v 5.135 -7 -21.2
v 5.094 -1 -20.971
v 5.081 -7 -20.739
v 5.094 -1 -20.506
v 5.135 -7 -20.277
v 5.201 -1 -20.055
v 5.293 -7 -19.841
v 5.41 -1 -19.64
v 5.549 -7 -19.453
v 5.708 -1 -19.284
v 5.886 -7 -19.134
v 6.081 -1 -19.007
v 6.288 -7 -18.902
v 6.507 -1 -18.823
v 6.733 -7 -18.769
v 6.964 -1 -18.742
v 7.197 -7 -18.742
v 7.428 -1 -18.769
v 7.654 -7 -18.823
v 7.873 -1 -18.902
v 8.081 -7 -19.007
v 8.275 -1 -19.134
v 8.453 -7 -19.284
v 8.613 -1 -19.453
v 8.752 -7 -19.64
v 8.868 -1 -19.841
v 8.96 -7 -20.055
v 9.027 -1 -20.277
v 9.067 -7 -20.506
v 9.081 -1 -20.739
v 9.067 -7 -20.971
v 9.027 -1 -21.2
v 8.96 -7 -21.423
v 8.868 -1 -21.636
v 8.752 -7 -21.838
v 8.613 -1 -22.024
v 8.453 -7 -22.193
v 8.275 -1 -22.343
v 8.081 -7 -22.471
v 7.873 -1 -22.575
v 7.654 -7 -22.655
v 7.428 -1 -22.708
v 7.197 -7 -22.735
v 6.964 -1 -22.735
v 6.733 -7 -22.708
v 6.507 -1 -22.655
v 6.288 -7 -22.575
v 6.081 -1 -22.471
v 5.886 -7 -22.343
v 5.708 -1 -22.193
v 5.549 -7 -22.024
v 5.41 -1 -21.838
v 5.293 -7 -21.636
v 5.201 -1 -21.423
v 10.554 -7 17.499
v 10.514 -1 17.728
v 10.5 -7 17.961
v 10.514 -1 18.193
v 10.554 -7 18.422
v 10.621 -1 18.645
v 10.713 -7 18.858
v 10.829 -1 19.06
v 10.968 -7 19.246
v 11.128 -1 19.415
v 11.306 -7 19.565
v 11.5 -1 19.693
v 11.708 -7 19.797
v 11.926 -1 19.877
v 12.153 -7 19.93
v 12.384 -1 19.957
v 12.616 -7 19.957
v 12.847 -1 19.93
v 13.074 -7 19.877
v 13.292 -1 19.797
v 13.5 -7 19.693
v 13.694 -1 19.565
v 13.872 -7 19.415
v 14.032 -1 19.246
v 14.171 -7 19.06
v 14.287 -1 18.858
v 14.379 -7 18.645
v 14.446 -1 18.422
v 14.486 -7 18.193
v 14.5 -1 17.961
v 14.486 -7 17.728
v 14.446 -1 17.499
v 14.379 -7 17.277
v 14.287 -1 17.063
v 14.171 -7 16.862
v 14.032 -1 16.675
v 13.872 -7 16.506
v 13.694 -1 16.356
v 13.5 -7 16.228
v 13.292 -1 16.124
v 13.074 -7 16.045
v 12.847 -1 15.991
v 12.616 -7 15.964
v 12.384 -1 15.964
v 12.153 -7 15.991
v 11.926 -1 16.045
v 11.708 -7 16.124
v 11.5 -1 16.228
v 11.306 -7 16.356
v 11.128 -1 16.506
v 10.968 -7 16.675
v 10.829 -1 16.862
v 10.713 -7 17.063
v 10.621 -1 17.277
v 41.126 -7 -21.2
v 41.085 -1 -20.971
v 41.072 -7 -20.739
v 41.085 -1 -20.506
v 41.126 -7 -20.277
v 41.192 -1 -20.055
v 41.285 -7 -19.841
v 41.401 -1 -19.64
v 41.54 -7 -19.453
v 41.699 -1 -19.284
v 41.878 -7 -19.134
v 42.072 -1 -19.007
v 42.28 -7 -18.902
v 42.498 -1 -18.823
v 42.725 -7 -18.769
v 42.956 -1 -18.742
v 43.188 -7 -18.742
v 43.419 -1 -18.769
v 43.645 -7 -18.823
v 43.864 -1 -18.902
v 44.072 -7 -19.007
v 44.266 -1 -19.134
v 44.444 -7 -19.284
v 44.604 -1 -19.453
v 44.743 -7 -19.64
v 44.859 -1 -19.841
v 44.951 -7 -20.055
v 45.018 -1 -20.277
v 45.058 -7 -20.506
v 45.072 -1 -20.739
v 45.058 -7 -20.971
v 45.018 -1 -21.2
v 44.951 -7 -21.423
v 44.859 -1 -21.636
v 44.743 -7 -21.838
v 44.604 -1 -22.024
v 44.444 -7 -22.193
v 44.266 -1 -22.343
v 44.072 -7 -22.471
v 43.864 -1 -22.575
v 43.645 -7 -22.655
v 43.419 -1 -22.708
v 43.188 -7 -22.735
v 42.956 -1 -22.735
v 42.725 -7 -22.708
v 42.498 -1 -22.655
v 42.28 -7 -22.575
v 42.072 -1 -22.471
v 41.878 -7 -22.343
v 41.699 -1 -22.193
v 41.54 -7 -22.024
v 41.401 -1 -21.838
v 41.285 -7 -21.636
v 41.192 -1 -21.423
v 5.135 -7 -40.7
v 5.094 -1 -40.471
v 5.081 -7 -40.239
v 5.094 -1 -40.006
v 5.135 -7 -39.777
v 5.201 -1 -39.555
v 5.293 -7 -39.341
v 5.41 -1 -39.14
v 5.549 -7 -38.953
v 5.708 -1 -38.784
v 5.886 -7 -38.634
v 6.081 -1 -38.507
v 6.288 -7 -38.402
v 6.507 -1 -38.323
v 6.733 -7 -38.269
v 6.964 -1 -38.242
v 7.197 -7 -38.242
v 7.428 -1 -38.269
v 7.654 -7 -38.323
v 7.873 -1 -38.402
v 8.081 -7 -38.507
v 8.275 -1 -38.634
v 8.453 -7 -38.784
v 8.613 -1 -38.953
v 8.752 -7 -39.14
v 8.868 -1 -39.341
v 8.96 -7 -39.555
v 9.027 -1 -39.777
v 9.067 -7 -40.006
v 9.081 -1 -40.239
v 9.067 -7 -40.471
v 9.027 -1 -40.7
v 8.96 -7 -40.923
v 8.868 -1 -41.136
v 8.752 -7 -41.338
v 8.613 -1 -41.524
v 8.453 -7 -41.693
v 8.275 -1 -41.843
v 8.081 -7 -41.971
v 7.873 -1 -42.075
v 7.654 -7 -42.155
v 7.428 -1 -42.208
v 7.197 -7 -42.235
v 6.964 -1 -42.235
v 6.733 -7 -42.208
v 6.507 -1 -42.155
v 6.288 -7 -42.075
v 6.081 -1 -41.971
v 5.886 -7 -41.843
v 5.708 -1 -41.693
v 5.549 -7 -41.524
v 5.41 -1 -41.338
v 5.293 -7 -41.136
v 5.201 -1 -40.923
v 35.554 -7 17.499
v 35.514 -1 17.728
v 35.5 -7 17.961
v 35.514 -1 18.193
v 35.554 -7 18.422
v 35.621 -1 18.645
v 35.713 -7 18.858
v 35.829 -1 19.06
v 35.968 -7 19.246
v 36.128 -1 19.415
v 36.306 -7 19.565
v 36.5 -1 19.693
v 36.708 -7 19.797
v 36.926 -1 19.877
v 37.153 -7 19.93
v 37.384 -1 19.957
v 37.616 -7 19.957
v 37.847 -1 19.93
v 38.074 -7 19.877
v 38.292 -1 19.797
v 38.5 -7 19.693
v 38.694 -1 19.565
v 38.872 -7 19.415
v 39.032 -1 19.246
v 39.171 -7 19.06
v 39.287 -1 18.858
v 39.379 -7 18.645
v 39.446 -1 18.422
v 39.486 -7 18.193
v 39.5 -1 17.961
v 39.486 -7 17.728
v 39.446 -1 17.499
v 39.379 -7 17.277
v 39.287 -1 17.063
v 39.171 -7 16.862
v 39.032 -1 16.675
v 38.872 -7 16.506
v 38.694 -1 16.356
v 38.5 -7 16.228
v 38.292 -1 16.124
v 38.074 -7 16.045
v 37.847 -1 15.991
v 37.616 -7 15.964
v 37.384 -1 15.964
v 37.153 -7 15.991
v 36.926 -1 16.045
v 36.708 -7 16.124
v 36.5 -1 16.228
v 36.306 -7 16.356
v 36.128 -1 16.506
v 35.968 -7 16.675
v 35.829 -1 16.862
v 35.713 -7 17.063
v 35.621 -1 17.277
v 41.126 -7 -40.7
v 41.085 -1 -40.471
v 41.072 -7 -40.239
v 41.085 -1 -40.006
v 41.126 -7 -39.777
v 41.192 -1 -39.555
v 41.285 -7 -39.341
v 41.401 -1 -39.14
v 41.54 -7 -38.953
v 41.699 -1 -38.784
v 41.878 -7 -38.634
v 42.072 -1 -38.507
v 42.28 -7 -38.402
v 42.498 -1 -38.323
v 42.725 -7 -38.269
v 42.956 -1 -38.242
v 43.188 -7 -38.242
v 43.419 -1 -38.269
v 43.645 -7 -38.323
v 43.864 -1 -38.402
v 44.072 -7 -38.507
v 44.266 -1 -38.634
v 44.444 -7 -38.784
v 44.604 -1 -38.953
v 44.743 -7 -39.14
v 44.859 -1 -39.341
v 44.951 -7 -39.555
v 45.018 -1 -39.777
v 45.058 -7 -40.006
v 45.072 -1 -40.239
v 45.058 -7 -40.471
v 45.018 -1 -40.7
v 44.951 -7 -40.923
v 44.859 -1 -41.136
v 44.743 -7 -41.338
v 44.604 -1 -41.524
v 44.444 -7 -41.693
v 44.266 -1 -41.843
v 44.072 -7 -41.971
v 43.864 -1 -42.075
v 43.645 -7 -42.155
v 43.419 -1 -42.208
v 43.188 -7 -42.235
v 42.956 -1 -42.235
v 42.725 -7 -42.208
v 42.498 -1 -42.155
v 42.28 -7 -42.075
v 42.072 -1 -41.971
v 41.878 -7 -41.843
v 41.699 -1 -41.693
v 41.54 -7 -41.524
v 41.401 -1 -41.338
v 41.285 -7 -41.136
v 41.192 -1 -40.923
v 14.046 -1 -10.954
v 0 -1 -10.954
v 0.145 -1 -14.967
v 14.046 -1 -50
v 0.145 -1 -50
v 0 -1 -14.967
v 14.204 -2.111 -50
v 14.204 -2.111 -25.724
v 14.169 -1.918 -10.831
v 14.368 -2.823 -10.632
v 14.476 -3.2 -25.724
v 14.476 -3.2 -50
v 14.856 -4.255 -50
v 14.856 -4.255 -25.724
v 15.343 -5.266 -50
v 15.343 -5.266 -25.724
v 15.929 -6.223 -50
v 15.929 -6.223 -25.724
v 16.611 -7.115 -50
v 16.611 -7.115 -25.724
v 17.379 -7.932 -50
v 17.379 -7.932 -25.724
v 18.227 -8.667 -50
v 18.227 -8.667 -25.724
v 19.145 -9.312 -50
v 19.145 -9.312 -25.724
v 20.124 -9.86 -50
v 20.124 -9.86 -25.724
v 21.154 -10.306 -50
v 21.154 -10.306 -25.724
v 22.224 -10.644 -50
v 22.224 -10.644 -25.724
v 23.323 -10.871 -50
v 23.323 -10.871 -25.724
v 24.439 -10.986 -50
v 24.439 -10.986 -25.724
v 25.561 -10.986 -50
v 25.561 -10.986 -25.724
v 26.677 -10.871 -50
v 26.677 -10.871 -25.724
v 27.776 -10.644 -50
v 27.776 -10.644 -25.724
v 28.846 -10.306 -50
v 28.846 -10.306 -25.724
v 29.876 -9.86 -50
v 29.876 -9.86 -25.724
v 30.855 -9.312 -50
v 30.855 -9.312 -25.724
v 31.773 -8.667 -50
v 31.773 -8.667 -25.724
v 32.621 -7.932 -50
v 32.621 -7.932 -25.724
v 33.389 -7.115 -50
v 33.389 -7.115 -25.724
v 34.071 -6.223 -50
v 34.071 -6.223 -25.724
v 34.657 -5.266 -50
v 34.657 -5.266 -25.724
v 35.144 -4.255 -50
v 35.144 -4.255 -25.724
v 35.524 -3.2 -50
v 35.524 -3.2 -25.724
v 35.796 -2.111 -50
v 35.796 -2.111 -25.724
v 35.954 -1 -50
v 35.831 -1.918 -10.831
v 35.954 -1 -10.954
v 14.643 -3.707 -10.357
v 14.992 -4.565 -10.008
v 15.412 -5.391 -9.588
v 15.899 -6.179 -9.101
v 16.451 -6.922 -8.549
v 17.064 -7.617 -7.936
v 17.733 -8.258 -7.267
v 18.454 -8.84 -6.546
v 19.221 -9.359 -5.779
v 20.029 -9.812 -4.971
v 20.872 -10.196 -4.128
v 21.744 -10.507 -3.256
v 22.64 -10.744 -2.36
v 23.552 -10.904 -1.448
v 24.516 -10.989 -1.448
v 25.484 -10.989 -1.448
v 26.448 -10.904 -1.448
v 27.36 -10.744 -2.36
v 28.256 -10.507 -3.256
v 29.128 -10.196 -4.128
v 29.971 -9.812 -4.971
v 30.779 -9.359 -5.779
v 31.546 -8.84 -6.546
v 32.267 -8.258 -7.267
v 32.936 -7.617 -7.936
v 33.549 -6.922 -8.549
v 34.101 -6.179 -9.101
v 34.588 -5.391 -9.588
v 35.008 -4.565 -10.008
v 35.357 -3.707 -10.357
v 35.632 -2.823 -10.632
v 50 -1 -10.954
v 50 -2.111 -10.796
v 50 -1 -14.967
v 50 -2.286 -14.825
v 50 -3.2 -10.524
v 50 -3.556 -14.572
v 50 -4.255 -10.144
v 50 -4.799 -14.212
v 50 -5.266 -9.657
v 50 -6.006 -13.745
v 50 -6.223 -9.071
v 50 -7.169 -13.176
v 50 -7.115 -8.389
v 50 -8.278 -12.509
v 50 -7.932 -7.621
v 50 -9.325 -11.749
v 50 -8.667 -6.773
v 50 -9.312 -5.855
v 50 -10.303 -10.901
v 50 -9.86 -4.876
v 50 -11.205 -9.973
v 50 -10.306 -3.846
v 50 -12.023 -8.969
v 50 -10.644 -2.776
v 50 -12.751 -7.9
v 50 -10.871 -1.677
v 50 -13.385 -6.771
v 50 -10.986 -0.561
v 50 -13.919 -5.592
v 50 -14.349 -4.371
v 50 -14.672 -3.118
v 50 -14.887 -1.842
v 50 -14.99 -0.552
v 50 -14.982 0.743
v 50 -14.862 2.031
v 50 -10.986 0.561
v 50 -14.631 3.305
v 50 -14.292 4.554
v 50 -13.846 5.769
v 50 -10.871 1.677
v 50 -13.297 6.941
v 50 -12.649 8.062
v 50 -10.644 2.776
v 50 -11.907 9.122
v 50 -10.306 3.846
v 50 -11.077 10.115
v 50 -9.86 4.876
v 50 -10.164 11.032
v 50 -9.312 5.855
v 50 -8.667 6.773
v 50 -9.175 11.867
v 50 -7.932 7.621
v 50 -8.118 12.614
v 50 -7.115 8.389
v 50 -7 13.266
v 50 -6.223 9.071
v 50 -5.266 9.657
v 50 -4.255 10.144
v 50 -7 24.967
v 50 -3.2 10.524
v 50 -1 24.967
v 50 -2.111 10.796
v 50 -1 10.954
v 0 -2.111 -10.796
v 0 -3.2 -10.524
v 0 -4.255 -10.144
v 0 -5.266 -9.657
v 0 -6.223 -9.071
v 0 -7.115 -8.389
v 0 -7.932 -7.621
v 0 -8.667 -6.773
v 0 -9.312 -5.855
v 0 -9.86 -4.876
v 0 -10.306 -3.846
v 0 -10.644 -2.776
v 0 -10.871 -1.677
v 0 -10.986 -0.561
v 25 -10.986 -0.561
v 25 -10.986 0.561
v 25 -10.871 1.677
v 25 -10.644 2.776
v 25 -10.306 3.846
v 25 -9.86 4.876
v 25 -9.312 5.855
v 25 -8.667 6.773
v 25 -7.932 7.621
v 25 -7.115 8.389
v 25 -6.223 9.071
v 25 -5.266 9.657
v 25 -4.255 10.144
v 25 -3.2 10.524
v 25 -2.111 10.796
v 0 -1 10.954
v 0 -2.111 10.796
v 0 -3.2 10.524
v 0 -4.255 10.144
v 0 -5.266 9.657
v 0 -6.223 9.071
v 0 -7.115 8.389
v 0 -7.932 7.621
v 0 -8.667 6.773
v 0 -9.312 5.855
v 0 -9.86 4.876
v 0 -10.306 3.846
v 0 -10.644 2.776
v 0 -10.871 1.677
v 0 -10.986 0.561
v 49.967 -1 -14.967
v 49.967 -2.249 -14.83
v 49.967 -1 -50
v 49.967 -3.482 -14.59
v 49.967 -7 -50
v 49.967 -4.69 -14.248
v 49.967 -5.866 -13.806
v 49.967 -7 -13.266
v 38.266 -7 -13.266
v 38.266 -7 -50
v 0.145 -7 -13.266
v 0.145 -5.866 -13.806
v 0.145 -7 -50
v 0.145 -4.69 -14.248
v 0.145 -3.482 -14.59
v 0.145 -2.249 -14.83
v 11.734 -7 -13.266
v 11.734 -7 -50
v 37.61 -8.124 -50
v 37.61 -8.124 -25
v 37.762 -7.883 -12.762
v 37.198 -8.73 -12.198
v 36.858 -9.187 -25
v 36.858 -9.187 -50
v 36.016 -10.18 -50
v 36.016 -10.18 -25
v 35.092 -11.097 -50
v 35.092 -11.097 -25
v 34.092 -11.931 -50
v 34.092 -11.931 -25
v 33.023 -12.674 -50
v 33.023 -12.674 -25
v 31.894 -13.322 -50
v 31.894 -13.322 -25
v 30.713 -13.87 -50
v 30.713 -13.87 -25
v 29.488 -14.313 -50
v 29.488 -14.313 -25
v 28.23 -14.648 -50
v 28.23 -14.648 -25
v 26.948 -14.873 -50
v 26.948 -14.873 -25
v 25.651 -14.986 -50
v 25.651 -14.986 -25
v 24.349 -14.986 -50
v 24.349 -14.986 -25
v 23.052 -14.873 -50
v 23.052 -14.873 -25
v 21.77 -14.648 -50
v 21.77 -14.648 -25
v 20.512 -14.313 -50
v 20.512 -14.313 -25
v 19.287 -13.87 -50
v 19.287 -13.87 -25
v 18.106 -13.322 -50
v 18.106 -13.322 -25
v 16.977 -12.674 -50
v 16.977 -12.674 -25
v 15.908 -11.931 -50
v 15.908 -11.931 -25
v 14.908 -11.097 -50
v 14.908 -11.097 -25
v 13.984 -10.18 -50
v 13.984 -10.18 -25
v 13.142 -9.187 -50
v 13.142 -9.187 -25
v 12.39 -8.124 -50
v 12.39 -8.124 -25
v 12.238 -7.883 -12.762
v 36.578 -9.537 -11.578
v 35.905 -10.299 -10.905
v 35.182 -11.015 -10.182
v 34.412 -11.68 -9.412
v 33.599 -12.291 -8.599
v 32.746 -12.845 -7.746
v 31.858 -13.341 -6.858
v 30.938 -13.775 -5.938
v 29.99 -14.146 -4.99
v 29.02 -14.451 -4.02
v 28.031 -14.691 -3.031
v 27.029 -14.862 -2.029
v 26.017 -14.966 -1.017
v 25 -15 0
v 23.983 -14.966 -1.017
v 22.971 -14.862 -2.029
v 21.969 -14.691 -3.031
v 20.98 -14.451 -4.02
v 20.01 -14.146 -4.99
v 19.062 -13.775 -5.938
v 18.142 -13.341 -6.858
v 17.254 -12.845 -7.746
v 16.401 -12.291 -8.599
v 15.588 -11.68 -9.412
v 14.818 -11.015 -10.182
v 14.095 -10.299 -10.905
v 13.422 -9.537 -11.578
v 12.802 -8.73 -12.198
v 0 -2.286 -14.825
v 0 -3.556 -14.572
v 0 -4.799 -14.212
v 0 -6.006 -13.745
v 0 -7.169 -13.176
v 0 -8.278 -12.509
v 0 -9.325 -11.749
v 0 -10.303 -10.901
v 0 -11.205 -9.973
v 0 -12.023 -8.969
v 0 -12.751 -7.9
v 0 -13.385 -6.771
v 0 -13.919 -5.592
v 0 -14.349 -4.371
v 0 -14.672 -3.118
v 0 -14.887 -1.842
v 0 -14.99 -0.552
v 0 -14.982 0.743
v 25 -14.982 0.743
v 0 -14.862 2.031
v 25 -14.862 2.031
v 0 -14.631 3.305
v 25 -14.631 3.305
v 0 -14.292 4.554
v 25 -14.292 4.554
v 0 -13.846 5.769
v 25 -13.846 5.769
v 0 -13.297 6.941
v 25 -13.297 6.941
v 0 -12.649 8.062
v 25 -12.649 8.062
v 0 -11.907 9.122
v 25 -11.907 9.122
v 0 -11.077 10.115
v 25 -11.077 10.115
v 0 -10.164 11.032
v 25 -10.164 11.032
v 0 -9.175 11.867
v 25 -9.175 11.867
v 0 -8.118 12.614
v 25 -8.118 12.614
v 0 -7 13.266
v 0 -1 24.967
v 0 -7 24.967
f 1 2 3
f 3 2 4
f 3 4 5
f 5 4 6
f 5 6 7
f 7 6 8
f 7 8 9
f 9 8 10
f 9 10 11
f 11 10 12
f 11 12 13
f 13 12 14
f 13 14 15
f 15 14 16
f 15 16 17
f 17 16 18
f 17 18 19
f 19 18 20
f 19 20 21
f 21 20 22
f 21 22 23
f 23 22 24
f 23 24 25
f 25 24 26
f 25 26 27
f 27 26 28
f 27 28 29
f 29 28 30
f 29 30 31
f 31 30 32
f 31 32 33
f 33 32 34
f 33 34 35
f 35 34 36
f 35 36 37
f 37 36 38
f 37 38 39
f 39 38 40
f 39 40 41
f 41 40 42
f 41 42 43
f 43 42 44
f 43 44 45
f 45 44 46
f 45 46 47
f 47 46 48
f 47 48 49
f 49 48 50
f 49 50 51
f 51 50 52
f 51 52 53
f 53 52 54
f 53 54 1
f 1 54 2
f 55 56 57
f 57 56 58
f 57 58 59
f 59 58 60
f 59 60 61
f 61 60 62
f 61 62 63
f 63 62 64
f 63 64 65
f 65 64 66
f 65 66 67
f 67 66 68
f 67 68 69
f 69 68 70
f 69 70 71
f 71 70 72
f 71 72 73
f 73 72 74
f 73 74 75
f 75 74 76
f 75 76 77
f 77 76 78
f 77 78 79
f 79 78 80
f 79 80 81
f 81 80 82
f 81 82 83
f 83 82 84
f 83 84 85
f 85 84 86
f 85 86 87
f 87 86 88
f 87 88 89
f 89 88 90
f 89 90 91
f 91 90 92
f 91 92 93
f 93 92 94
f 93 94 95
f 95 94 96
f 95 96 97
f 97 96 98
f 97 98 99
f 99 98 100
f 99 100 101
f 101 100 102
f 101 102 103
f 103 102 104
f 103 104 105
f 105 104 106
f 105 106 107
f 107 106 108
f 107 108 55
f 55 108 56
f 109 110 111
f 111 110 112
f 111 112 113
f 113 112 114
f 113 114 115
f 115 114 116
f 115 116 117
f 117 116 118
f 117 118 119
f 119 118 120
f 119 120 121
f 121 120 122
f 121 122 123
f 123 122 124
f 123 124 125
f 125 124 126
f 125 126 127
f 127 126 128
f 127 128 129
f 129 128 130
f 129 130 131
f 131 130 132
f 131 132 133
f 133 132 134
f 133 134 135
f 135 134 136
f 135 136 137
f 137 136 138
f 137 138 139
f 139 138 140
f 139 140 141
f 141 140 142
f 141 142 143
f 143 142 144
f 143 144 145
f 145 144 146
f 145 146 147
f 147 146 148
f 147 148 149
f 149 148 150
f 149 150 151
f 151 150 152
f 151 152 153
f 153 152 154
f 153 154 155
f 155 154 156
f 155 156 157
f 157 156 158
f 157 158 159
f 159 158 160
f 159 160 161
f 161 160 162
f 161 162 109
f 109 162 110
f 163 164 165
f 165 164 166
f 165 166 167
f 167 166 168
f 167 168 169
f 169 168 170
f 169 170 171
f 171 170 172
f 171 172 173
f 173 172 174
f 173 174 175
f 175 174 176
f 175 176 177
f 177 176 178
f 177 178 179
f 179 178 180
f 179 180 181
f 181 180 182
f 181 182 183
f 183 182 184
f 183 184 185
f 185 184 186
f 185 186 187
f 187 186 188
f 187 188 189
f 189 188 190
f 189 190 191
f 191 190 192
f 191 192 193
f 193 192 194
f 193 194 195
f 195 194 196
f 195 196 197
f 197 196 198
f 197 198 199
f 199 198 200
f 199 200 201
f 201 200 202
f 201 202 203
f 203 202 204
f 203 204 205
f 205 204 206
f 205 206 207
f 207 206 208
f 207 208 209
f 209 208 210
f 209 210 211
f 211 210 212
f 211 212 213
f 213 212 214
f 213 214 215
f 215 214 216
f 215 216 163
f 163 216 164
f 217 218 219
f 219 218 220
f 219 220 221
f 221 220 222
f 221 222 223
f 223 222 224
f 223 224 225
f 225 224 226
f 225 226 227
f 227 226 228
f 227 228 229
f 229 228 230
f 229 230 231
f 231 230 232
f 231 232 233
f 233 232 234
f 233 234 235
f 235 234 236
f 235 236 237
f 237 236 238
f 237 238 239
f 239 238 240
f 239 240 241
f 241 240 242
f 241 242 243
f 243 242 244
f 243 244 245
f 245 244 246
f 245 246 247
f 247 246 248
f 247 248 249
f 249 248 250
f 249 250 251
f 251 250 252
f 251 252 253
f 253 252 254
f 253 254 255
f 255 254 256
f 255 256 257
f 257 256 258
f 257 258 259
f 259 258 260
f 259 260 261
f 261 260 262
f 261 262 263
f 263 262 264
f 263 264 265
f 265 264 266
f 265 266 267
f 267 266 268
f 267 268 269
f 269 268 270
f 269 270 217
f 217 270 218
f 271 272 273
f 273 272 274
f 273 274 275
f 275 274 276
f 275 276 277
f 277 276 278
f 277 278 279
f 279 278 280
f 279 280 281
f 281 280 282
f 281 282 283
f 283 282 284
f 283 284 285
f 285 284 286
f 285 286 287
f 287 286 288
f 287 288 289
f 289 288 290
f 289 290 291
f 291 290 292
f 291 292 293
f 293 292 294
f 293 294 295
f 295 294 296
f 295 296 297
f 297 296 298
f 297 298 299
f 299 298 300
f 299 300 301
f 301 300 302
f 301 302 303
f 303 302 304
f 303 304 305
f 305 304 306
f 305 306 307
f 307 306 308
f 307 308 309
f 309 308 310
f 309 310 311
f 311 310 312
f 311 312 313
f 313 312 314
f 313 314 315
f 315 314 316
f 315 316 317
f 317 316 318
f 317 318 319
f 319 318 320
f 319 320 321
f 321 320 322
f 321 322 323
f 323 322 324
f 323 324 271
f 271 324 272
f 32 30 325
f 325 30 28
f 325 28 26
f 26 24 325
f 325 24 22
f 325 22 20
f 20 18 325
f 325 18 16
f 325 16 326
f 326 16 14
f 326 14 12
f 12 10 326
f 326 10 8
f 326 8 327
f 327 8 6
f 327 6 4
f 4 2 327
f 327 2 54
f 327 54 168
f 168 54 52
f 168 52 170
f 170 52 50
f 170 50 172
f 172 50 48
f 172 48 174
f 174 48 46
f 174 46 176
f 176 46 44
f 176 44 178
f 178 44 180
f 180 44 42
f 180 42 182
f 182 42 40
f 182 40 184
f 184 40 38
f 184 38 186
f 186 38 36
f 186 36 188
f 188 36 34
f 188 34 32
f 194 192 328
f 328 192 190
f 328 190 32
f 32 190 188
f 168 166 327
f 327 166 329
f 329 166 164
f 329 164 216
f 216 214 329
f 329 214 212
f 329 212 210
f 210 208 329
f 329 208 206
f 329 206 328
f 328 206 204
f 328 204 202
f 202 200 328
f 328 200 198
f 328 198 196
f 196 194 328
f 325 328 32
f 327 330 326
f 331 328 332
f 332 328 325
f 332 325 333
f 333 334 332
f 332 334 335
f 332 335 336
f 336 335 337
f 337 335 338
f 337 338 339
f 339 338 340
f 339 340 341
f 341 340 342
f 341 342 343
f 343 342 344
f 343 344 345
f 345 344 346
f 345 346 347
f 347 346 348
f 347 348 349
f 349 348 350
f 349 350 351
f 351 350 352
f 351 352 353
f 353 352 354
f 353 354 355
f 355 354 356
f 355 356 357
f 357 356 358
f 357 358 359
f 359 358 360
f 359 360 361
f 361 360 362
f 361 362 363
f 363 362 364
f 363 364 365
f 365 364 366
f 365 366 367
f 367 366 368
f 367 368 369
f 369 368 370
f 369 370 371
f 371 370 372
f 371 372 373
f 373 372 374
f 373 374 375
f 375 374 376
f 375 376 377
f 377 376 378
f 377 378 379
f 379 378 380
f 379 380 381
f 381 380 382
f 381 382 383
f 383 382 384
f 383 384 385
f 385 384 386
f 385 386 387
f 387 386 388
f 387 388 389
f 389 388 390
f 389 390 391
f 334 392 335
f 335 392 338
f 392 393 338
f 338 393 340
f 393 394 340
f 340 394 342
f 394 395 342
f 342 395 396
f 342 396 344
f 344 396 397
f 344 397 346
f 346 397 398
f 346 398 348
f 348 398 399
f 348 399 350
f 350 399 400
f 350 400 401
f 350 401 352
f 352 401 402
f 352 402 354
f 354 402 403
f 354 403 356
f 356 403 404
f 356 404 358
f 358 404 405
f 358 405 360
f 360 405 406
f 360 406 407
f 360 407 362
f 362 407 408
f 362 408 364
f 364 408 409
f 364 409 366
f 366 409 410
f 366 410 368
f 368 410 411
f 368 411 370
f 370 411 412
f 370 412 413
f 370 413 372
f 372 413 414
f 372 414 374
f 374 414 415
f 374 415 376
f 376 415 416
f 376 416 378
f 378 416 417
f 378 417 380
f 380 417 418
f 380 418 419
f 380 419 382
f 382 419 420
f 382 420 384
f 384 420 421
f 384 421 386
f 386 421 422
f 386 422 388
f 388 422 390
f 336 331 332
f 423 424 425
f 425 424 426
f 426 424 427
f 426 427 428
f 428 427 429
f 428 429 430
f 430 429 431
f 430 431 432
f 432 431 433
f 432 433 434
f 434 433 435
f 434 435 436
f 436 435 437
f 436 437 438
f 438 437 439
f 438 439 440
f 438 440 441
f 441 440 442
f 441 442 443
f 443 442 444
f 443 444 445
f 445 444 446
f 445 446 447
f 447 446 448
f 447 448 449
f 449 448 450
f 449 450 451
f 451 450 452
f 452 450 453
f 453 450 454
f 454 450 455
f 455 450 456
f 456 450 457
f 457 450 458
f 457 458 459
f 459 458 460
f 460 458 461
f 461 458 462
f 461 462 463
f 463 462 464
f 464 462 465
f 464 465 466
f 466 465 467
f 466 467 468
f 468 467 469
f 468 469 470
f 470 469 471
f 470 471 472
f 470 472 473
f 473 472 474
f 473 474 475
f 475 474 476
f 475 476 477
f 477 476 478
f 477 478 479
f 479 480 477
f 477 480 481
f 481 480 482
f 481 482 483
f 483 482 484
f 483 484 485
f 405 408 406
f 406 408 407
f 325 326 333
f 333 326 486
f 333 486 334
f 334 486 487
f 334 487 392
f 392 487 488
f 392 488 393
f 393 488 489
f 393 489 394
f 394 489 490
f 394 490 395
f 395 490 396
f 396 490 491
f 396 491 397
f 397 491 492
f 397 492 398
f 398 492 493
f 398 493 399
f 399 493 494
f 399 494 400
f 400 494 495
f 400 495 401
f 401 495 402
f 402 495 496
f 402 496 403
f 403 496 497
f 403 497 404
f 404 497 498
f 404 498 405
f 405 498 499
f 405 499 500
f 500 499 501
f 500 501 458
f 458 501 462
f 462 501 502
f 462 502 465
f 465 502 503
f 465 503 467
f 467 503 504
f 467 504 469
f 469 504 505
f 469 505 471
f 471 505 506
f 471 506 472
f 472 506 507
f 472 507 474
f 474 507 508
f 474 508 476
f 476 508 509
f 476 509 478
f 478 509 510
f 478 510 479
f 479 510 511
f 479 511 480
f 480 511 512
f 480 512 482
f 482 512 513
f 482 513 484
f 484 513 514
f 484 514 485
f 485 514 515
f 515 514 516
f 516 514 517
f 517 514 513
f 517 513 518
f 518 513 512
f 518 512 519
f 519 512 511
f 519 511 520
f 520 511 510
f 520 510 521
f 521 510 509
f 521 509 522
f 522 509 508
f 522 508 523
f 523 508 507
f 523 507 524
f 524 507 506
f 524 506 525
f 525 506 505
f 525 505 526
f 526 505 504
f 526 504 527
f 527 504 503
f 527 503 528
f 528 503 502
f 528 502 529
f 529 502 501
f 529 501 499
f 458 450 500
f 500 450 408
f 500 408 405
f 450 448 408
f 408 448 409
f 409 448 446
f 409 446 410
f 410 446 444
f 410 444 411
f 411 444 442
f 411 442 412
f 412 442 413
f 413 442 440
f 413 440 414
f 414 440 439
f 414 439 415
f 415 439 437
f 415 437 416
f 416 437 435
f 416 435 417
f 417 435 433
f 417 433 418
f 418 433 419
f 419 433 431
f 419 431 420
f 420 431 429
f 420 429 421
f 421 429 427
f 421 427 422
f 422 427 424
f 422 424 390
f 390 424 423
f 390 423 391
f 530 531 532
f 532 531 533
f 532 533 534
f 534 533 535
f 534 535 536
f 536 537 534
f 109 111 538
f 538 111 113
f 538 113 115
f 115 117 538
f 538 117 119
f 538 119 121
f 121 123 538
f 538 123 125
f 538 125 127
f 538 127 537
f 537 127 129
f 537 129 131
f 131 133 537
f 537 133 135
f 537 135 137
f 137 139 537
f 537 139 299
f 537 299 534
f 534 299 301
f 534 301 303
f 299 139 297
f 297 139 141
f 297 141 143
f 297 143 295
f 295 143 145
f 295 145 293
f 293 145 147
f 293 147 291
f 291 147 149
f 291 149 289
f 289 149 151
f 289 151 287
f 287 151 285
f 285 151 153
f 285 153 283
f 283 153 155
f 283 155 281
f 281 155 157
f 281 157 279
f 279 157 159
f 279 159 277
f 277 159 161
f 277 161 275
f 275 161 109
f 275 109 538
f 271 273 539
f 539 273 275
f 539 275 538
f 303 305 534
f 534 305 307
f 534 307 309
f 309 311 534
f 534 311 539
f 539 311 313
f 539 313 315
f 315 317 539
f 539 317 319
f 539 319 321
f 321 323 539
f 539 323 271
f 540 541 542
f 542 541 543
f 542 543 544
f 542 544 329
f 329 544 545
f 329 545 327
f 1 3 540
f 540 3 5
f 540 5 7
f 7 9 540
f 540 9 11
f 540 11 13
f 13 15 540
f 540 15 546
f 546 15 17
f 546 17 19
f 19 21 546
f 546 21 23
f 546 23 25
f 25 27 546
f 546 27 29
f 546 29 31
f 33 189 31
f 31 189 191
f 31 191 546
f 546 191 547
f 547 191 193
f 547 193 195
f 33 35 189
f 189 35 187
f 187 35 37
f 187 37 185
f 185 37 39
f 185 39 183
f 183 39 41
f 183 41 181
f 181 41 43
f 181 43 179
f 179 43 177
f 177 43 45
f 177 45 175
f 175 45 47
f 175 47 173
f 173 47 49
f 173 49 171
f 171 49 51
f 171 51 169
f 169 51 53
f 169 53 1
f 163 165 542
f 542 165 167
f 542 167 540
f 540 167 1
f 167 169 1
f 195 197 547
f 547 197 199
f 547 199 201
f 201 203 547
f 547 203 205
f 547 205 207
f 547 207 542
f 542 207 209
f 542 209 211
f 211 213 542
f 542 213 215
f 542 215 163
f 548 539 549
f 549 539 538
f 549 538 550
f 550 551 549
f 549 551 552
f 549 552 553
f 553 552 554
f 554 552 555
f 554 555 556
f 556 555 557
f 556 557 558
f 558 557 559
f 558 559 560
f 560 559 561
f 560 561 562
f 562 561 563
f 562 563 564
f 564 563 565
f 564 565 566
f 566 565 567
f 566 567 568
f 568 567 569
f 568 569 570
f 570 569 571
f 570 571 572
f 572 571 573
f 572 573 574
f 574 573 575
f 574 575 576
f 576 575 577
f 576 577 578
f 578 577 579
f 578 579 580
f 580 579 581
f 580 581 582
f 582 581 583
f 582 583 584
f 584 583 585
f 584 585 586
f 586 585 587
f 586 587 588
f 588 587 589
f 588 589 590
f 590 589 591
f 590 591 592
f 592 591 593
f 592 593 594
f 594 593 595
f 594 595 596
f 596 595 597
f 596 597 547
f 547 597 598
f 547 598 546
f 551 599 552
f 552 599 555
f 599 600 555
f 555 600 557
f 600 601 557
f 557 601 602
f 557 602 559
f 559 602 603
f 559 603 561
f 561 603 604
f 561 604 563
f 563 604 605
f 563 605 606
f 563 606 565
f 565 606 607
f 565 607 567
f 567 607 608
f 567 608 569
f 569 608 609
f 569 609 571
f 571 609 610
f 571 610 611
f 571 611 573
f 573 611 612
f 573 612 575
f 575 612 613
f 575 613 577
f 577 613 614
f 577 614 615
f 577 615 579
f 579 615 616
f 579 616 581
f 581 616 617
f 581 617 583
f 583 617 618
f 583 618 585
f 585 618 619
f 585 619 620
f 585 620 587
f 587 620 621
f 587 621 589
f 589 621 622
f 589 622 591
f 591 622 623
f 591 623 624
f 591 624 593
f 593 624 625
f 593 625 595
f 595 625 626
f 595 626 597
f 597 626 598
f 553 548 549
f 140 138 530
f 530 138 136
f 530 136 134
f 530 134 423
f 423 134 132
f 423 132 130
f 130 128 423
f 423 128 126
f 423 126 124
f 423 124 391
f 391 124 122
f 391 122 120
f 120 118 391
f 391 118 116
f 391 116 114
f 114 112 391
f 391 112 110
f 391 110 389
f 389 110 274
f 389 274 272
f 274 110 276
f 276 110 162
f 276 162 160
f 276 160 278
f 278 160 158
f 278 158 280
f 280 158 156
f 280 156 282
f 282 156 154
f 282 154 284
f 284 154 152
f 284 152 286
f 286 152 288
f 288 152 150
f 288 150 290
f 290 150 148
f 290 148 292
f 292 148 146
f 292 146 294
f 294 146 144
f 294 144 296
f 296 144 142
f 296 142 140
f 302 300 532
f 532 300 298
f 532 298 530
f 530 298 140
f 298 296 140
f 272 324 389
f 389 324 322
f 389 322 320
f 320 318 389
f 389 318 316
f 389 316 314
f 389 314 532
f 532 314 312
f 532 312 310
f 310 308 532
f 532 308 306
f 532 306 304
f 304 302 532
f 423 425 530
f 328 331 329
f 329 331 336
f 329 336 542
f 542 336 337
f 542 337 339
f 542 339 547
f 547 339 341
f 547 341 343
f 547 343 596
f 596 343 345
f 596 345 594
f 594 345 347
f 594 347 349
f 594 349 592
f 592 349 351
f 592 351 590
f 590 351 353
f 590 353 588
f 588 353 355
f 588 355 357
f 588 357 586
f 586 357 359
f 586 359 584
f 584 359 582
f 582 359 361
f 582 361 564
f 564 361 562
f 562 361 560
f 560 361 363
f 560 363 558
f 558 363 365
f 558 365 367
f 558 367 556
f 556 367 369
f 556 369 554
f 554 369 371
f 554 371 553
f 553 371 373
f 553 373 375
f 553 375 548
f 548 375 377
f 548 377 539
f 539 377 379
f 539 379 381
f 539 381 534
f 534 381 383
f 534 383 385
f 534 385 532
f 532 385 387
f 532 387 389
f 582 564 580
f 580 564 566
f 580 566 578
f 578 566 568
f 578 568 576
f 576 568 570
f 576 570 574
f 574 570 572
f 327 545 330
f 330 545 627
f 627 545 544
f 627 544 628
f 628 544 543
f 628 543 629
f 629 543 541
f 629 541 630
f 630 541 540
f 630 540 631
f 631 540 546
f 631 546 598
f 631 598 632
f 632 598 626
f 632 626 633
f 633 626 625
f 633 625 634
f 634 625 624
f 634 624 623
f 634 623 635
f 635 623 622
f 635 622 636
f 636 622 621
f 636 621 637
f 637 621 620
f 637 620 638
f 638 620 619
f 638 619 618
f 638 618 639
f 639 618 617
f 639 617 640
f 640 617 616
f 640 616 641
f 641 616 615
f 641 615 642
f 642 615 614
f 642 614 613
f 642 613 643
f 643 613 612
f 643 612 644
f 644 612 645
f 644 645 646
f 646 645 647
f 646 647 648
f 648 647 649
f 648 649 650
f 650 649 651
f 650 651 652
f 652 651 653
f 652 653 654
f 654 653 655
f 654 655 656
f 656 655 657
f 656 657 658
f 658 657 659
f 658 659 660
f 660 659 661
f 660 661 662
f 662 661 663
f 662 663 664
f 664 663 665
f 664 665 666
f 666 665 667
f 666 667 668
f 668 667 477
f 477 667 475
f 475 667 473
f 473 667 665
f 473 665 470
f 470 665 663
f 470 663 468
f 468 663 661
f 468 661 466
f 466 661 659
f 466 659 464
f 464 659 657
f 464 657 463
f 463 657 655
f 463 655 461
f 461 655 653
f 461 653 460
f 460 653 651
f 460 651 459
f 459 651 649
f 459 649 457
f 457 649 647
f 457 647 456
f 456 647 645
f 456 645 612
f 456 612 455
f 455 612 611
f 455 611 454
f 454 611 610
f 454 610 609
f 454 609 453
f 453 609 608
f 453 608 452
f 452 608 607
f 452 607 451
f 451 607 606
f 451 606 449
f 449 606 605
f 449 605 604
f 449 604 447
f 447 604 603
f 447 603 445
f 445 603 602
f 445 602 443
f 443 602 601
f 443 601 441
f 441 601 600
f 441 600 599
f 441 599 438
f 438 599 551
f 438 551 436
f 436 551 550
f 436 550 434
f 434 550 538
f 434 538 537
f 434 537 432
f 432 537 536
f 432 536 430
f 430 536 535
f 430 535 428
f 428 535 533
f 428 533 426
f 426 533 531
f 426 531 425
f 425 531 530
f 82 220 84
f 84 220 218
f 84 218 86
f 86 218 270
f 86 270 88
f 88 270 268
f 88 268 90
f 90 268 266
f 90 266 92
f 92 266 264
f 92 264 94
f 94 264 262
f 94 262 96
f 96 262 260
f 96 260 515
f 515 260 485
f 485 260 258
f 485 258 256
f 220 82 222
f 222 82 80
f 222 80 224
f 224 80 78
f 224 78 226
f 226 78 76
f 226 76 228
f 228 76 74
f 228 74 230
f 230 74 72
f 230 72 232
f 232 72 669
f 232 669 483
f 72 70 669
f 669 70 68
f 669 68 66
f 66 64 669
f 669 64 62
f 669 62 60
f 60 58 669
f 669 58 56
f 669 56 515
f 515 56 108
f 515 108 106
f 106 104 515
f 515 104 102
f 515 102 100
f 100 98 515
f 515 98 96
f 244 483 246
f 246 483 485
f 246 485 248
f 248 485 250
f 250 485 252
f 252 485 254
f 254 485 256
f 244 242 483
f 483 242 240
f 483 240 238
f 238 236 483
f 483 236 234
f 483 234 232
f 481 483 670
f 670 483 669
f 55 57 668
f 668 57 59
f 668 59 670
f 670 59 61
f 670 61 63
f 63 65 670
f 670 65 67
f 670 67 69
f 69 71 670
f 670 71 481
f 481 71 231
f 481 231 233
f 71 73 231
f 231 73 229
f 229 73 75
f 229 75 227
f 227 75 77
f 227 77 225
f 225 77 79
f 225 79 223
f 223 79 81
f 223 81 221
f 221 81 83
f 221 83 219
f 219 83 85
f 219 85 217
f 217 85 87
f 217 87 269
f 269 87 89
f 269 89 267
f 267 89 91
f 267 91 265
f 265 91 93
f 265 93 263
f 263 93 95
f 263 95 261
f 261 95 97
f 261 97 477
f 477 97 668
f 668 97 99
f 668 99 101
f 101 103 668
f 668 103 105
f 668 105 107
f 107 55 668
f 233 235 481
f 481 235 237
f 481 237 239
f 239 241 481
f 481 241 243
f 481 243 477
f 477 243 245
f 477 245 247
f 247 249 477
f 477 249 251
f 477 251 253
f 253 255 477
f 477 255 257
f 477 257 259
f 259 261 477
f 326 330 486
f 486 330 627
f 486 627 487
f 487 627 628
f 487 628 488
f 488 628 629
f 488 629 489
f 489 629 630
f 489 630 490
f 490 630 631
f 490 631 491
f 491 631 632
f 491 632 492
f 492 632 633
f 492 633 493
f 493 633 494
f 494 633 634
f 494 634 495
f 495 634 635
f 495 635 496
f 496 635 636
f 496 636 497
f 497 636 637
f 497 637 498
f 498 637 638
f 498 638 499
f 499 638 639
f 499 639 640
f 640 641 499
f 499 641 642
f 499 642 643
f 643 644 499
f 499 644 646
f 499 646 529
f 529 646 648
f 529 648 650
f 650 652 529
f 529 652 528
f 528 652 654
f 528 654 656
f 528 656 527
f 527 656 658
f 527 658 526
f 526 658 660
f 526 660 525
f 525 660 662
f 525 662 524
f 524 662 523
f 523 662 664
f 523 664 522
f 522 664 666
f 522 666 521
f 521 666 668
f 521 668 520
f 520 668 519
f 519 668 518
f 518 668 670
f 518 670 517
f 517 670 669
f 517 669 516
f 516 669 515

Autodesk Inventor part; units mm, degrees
ref_plane "YZ Plane" through (0, 0, 0) normal (1, 0, 0) x (0, 1, 0)
ref_plane "XZ Plane" through (0, 0, 0) normal (0, 1, 0) x (-1, 0, 0)
ref_plane "XY Plane" through (0, 0, 0) normal (0, 0, 1) x (1, 0, 0)
sketch "Sketch1" plane through (0, 0, 0) normal (1, 0, 0) x (0, 1, 0)
  arc A0 (-1, 14.96663) -> (0, -15) centre (0, 0) ccw
  arc A1 (-1, 10.954451) -> (0, -11) centre (0, 0) ccw
  line L0 (0, 15) -> (0, -15)
  line L1 (-1, 14.96663) -> (-1, 10.954451)
  point P0 (0, 11.5)
  dimension "d0" = 30
  dimension "d1" = 22
extrude "Extrusion1" add sketch "Sketch1" along normal blind 50
sketch "Sketch2" plane through (50, 0, 0) normal (1, 0, 0) x (0, 0, -1)
  line L0 (-10.954451, -1) -> (-14.96663, -1)
  line L1 (-14.96663, -1) -> (-24.96663, -1)
  line L2 (-24.96663, -1) -> (-24.96663, -7)
  line L3 (-24.96663, -7) -> (-13.211534, -7)
  arc A0 (-14.96663, -1) -> (15, 0) centre (0, 0) ccw
  line L4 (-14.96663, -1) -> (-13.211534, -7)
  point P0 (-13.266499, -7)
  dimension "d5" = 10
  dimension "d6" = 6
extrude "Extrusion2" add sketch "Sketch2" against normal blind 50 contours A0 L3 L2 L1
sketch "Sketch3" plane through (0, 0, 0) normal (0, 1, 0) x (-1, 0, 0)
  line L0 (0, 0) -> (-25, 0) construction
  line L1 (-25, 0) -> (-25, -50) construction
  dimension "d9" = 25
  dimension "d10" = 50
ref_plane "Work Plane1" through (25, 0, -50) normal (0, 0, -1) x (-1, 0, 0)
sketch "Sketch4" plane through (25, 0, -50) normal (0, 0, -1) x (-1, 0, 0)
  line L0 (25, 0) -> (-25, 0)
  arc A0 (-10.954451, -1) -> (10.954451, -1) centre (0, 0) ccw
  arc A1 (-14.96663, -1) -> (14.96663, -1) centre (0, 0) ccw
  line L1 (25, -1) -> (-25, -1)
  line L2 (-14.96663, -1) -> (14.96663, -1)
  point P0 (-10.954451, -1)
  point P1 (10.954451, -1)
  dimension "d11" = 22
  dimension "d12" = 30
extrude "Extrusion3" add sketch "Sketch4" against normal up to next contours A0 L1 A1
sketch "Sketch5" plane through (25, 0, -50) normal (0, 0, -1) x (-1, 0, 0)
  arc A0 (-10.954451, -1) -> (10.954451, -1) centre (0, 0) ccw
  circle A1 centre (0, 0) radius 11
  line L0 (25, -1) -> (-25, -1)
  line L1 (14.854796, -1) -> (24.854796, -1)
  arc A2 (-14.96663, -1) -> (0, -15) centre (0, 0) ccw
  line L2 (-14.96663, -1) -> (-24.96663, -1)
  line L3 (-24.96663, -1) -> (-24.96663, -7)
  line L4 (-24.96663, -7) -> (24.854796, -7)
  line L5 (24.854796, -7) -> (24.854796, -1)
  line L6 (-24.96663, -1) -> (24.854796, -1)
  point P0 (25, 0)
  point P1 (-13.266499, -7)
  point P2 (8.485281, -7)
  dimension "d15" = 10
  dimension "d16" = 10
  dimension "d17" = 6
extrude "Extrusion4" add sketch "Sketch5" against normal blind 38.302 contours L0 L5 L4 A0 | A2 L4 L3 L0
sketch "Sketch6" plane through (25, 0, -50) normal (0, 0, -1) x (-1, 0, 0)
  line L0 (25, 0) -> (-25, 0)
  arc A0 (-10.954451, -1) -> (10.954451, -1) centre (0, 0) ccw
  circle A1 centre (0, 0) radius 11
  point P0 (-11, 0)
  point P1 (-10.954451, -1)
  point P2 (11, 0)
extrude "Extrusion5" cut sketch "Sketch6" against normal blind 48.552 contours A1 A0 L0
sketch "Sketch7" plane through (50, 0, -11) normal (0, 1, 0) x (1, 0, 0)
  line L0 (1.146492, -0.964321) -> (-15.803609, -0.964321)
  line L1 (-15.803609, -0.964321) -> (-15.803609, 5.725768)
  line L2 (-15.803609, 5.725768) -> (1.146492, 5.725768)
  line L3 (1.146492, 5.725768) -> (1.146492, -0.964321)
  line L4 (-26.448, -9.552) -> (-36, 0)
  line L5 (-34.667708, -1.332292) -> (-52.233675, -1.332292)
  line L6 (-52.233675, -1.332292) -> (-52.233675, 5.725768)
  line L7 (-52.233675, 5.725768) -> (-34.667708, 5.725768)
  line L8 (-34.667708, 5.725768) -> (-34.667708, -1.332292)
  point P0 (-50, -11)
extrude "Extrusion6" cut sketch "Sketch7" against normal blind 1
sketch "Sketch8" plane through (35.954451, -1, -10.954451) normal (0, 1, 0) x (1, 0, 0)
  line L0 (0, 39.045549) -> (14.012178, 39.045549)
  line L1 (0, 0) -> (-9.506451, -9.506451)
  line L2 (14.012178, 39.045549) -> (14.012178, 4.012178)
  line L3 (0.045549, 19.522774) -> (14.189279, 0.045549) construction
  circle A0 centre (7.117414, 9.784162) radius 2
  line L4 (0.045549, 19.522774) -> (14.012178, 39.045549) construction
  line L5 (0.045549, 19.522774) -> (-21.938424, 19.522774) construction
  line L6 (-21.938424, 19.522774) -> (-35.954451, 39.045549) construction
  line L7 (2.312048, 39.045549) -> (-24.22095, 39.045549) construction
  line L8 (-21.938424, 39.045549) -> (-35.809247, 19.522774) construction
  line L9 (-35.809247, 39.045549) -> (-35.809247, 2.312048) construction
  line L10 (7.117414, 9.784162) -> (-28.873836, 9.784162) construction
  line L11 (-28.873836, 9.784162) -> (-28.873836, 29.284162) construction
  line L12 (-28.873836, 29.284162) -> (7.117414, 29.284162) construction
  line L13 (7.117414, 29.284162) -> (7.117414, 9.784162) construction
  circle A1 centre (-28.873836, 9.784162) radius 2
  circle A2 centre (7.117414, 29.284162) radius 2
  circle A3 centre (-28.873836, 29.284162) radius 2
  line L14 (-35.954451, -21.908902) -> (14.045549, -21.908902) construction
  line L15 (-10.954451, -21.908902) -> (-35.954451, -35.954451) construction
  line L16 (-35.954451, -21.908902) -> (-35.954451, -35.921081)
  line L17 (-10.954451, -35.921081) -> (14.045549, -21.908902) construction
  line L18 (14.045549, -35.921081) -> (-35.954451, -35.921081) construction
  line L19 (14.045549, -35.921081) -> (-10.954451, -21.908902) construction
  circle A4 centre (1.545549, -28.914991) radius 2
  circle A5 centre (-23.454451, -28.914991) radius 2
  point P0 (-35.954451, -10.954451)
  dimension "d24" = 4
  dimension "d25" = 4
  dimension "d26" = 4
  dimension "d27" = 4
  dimension "d28" = 4
  dimension "d29" = 4
extrude "Extrusion7" cut sketch "Sketch8" against normal blind 48.552
properties part number "betterTconection"
